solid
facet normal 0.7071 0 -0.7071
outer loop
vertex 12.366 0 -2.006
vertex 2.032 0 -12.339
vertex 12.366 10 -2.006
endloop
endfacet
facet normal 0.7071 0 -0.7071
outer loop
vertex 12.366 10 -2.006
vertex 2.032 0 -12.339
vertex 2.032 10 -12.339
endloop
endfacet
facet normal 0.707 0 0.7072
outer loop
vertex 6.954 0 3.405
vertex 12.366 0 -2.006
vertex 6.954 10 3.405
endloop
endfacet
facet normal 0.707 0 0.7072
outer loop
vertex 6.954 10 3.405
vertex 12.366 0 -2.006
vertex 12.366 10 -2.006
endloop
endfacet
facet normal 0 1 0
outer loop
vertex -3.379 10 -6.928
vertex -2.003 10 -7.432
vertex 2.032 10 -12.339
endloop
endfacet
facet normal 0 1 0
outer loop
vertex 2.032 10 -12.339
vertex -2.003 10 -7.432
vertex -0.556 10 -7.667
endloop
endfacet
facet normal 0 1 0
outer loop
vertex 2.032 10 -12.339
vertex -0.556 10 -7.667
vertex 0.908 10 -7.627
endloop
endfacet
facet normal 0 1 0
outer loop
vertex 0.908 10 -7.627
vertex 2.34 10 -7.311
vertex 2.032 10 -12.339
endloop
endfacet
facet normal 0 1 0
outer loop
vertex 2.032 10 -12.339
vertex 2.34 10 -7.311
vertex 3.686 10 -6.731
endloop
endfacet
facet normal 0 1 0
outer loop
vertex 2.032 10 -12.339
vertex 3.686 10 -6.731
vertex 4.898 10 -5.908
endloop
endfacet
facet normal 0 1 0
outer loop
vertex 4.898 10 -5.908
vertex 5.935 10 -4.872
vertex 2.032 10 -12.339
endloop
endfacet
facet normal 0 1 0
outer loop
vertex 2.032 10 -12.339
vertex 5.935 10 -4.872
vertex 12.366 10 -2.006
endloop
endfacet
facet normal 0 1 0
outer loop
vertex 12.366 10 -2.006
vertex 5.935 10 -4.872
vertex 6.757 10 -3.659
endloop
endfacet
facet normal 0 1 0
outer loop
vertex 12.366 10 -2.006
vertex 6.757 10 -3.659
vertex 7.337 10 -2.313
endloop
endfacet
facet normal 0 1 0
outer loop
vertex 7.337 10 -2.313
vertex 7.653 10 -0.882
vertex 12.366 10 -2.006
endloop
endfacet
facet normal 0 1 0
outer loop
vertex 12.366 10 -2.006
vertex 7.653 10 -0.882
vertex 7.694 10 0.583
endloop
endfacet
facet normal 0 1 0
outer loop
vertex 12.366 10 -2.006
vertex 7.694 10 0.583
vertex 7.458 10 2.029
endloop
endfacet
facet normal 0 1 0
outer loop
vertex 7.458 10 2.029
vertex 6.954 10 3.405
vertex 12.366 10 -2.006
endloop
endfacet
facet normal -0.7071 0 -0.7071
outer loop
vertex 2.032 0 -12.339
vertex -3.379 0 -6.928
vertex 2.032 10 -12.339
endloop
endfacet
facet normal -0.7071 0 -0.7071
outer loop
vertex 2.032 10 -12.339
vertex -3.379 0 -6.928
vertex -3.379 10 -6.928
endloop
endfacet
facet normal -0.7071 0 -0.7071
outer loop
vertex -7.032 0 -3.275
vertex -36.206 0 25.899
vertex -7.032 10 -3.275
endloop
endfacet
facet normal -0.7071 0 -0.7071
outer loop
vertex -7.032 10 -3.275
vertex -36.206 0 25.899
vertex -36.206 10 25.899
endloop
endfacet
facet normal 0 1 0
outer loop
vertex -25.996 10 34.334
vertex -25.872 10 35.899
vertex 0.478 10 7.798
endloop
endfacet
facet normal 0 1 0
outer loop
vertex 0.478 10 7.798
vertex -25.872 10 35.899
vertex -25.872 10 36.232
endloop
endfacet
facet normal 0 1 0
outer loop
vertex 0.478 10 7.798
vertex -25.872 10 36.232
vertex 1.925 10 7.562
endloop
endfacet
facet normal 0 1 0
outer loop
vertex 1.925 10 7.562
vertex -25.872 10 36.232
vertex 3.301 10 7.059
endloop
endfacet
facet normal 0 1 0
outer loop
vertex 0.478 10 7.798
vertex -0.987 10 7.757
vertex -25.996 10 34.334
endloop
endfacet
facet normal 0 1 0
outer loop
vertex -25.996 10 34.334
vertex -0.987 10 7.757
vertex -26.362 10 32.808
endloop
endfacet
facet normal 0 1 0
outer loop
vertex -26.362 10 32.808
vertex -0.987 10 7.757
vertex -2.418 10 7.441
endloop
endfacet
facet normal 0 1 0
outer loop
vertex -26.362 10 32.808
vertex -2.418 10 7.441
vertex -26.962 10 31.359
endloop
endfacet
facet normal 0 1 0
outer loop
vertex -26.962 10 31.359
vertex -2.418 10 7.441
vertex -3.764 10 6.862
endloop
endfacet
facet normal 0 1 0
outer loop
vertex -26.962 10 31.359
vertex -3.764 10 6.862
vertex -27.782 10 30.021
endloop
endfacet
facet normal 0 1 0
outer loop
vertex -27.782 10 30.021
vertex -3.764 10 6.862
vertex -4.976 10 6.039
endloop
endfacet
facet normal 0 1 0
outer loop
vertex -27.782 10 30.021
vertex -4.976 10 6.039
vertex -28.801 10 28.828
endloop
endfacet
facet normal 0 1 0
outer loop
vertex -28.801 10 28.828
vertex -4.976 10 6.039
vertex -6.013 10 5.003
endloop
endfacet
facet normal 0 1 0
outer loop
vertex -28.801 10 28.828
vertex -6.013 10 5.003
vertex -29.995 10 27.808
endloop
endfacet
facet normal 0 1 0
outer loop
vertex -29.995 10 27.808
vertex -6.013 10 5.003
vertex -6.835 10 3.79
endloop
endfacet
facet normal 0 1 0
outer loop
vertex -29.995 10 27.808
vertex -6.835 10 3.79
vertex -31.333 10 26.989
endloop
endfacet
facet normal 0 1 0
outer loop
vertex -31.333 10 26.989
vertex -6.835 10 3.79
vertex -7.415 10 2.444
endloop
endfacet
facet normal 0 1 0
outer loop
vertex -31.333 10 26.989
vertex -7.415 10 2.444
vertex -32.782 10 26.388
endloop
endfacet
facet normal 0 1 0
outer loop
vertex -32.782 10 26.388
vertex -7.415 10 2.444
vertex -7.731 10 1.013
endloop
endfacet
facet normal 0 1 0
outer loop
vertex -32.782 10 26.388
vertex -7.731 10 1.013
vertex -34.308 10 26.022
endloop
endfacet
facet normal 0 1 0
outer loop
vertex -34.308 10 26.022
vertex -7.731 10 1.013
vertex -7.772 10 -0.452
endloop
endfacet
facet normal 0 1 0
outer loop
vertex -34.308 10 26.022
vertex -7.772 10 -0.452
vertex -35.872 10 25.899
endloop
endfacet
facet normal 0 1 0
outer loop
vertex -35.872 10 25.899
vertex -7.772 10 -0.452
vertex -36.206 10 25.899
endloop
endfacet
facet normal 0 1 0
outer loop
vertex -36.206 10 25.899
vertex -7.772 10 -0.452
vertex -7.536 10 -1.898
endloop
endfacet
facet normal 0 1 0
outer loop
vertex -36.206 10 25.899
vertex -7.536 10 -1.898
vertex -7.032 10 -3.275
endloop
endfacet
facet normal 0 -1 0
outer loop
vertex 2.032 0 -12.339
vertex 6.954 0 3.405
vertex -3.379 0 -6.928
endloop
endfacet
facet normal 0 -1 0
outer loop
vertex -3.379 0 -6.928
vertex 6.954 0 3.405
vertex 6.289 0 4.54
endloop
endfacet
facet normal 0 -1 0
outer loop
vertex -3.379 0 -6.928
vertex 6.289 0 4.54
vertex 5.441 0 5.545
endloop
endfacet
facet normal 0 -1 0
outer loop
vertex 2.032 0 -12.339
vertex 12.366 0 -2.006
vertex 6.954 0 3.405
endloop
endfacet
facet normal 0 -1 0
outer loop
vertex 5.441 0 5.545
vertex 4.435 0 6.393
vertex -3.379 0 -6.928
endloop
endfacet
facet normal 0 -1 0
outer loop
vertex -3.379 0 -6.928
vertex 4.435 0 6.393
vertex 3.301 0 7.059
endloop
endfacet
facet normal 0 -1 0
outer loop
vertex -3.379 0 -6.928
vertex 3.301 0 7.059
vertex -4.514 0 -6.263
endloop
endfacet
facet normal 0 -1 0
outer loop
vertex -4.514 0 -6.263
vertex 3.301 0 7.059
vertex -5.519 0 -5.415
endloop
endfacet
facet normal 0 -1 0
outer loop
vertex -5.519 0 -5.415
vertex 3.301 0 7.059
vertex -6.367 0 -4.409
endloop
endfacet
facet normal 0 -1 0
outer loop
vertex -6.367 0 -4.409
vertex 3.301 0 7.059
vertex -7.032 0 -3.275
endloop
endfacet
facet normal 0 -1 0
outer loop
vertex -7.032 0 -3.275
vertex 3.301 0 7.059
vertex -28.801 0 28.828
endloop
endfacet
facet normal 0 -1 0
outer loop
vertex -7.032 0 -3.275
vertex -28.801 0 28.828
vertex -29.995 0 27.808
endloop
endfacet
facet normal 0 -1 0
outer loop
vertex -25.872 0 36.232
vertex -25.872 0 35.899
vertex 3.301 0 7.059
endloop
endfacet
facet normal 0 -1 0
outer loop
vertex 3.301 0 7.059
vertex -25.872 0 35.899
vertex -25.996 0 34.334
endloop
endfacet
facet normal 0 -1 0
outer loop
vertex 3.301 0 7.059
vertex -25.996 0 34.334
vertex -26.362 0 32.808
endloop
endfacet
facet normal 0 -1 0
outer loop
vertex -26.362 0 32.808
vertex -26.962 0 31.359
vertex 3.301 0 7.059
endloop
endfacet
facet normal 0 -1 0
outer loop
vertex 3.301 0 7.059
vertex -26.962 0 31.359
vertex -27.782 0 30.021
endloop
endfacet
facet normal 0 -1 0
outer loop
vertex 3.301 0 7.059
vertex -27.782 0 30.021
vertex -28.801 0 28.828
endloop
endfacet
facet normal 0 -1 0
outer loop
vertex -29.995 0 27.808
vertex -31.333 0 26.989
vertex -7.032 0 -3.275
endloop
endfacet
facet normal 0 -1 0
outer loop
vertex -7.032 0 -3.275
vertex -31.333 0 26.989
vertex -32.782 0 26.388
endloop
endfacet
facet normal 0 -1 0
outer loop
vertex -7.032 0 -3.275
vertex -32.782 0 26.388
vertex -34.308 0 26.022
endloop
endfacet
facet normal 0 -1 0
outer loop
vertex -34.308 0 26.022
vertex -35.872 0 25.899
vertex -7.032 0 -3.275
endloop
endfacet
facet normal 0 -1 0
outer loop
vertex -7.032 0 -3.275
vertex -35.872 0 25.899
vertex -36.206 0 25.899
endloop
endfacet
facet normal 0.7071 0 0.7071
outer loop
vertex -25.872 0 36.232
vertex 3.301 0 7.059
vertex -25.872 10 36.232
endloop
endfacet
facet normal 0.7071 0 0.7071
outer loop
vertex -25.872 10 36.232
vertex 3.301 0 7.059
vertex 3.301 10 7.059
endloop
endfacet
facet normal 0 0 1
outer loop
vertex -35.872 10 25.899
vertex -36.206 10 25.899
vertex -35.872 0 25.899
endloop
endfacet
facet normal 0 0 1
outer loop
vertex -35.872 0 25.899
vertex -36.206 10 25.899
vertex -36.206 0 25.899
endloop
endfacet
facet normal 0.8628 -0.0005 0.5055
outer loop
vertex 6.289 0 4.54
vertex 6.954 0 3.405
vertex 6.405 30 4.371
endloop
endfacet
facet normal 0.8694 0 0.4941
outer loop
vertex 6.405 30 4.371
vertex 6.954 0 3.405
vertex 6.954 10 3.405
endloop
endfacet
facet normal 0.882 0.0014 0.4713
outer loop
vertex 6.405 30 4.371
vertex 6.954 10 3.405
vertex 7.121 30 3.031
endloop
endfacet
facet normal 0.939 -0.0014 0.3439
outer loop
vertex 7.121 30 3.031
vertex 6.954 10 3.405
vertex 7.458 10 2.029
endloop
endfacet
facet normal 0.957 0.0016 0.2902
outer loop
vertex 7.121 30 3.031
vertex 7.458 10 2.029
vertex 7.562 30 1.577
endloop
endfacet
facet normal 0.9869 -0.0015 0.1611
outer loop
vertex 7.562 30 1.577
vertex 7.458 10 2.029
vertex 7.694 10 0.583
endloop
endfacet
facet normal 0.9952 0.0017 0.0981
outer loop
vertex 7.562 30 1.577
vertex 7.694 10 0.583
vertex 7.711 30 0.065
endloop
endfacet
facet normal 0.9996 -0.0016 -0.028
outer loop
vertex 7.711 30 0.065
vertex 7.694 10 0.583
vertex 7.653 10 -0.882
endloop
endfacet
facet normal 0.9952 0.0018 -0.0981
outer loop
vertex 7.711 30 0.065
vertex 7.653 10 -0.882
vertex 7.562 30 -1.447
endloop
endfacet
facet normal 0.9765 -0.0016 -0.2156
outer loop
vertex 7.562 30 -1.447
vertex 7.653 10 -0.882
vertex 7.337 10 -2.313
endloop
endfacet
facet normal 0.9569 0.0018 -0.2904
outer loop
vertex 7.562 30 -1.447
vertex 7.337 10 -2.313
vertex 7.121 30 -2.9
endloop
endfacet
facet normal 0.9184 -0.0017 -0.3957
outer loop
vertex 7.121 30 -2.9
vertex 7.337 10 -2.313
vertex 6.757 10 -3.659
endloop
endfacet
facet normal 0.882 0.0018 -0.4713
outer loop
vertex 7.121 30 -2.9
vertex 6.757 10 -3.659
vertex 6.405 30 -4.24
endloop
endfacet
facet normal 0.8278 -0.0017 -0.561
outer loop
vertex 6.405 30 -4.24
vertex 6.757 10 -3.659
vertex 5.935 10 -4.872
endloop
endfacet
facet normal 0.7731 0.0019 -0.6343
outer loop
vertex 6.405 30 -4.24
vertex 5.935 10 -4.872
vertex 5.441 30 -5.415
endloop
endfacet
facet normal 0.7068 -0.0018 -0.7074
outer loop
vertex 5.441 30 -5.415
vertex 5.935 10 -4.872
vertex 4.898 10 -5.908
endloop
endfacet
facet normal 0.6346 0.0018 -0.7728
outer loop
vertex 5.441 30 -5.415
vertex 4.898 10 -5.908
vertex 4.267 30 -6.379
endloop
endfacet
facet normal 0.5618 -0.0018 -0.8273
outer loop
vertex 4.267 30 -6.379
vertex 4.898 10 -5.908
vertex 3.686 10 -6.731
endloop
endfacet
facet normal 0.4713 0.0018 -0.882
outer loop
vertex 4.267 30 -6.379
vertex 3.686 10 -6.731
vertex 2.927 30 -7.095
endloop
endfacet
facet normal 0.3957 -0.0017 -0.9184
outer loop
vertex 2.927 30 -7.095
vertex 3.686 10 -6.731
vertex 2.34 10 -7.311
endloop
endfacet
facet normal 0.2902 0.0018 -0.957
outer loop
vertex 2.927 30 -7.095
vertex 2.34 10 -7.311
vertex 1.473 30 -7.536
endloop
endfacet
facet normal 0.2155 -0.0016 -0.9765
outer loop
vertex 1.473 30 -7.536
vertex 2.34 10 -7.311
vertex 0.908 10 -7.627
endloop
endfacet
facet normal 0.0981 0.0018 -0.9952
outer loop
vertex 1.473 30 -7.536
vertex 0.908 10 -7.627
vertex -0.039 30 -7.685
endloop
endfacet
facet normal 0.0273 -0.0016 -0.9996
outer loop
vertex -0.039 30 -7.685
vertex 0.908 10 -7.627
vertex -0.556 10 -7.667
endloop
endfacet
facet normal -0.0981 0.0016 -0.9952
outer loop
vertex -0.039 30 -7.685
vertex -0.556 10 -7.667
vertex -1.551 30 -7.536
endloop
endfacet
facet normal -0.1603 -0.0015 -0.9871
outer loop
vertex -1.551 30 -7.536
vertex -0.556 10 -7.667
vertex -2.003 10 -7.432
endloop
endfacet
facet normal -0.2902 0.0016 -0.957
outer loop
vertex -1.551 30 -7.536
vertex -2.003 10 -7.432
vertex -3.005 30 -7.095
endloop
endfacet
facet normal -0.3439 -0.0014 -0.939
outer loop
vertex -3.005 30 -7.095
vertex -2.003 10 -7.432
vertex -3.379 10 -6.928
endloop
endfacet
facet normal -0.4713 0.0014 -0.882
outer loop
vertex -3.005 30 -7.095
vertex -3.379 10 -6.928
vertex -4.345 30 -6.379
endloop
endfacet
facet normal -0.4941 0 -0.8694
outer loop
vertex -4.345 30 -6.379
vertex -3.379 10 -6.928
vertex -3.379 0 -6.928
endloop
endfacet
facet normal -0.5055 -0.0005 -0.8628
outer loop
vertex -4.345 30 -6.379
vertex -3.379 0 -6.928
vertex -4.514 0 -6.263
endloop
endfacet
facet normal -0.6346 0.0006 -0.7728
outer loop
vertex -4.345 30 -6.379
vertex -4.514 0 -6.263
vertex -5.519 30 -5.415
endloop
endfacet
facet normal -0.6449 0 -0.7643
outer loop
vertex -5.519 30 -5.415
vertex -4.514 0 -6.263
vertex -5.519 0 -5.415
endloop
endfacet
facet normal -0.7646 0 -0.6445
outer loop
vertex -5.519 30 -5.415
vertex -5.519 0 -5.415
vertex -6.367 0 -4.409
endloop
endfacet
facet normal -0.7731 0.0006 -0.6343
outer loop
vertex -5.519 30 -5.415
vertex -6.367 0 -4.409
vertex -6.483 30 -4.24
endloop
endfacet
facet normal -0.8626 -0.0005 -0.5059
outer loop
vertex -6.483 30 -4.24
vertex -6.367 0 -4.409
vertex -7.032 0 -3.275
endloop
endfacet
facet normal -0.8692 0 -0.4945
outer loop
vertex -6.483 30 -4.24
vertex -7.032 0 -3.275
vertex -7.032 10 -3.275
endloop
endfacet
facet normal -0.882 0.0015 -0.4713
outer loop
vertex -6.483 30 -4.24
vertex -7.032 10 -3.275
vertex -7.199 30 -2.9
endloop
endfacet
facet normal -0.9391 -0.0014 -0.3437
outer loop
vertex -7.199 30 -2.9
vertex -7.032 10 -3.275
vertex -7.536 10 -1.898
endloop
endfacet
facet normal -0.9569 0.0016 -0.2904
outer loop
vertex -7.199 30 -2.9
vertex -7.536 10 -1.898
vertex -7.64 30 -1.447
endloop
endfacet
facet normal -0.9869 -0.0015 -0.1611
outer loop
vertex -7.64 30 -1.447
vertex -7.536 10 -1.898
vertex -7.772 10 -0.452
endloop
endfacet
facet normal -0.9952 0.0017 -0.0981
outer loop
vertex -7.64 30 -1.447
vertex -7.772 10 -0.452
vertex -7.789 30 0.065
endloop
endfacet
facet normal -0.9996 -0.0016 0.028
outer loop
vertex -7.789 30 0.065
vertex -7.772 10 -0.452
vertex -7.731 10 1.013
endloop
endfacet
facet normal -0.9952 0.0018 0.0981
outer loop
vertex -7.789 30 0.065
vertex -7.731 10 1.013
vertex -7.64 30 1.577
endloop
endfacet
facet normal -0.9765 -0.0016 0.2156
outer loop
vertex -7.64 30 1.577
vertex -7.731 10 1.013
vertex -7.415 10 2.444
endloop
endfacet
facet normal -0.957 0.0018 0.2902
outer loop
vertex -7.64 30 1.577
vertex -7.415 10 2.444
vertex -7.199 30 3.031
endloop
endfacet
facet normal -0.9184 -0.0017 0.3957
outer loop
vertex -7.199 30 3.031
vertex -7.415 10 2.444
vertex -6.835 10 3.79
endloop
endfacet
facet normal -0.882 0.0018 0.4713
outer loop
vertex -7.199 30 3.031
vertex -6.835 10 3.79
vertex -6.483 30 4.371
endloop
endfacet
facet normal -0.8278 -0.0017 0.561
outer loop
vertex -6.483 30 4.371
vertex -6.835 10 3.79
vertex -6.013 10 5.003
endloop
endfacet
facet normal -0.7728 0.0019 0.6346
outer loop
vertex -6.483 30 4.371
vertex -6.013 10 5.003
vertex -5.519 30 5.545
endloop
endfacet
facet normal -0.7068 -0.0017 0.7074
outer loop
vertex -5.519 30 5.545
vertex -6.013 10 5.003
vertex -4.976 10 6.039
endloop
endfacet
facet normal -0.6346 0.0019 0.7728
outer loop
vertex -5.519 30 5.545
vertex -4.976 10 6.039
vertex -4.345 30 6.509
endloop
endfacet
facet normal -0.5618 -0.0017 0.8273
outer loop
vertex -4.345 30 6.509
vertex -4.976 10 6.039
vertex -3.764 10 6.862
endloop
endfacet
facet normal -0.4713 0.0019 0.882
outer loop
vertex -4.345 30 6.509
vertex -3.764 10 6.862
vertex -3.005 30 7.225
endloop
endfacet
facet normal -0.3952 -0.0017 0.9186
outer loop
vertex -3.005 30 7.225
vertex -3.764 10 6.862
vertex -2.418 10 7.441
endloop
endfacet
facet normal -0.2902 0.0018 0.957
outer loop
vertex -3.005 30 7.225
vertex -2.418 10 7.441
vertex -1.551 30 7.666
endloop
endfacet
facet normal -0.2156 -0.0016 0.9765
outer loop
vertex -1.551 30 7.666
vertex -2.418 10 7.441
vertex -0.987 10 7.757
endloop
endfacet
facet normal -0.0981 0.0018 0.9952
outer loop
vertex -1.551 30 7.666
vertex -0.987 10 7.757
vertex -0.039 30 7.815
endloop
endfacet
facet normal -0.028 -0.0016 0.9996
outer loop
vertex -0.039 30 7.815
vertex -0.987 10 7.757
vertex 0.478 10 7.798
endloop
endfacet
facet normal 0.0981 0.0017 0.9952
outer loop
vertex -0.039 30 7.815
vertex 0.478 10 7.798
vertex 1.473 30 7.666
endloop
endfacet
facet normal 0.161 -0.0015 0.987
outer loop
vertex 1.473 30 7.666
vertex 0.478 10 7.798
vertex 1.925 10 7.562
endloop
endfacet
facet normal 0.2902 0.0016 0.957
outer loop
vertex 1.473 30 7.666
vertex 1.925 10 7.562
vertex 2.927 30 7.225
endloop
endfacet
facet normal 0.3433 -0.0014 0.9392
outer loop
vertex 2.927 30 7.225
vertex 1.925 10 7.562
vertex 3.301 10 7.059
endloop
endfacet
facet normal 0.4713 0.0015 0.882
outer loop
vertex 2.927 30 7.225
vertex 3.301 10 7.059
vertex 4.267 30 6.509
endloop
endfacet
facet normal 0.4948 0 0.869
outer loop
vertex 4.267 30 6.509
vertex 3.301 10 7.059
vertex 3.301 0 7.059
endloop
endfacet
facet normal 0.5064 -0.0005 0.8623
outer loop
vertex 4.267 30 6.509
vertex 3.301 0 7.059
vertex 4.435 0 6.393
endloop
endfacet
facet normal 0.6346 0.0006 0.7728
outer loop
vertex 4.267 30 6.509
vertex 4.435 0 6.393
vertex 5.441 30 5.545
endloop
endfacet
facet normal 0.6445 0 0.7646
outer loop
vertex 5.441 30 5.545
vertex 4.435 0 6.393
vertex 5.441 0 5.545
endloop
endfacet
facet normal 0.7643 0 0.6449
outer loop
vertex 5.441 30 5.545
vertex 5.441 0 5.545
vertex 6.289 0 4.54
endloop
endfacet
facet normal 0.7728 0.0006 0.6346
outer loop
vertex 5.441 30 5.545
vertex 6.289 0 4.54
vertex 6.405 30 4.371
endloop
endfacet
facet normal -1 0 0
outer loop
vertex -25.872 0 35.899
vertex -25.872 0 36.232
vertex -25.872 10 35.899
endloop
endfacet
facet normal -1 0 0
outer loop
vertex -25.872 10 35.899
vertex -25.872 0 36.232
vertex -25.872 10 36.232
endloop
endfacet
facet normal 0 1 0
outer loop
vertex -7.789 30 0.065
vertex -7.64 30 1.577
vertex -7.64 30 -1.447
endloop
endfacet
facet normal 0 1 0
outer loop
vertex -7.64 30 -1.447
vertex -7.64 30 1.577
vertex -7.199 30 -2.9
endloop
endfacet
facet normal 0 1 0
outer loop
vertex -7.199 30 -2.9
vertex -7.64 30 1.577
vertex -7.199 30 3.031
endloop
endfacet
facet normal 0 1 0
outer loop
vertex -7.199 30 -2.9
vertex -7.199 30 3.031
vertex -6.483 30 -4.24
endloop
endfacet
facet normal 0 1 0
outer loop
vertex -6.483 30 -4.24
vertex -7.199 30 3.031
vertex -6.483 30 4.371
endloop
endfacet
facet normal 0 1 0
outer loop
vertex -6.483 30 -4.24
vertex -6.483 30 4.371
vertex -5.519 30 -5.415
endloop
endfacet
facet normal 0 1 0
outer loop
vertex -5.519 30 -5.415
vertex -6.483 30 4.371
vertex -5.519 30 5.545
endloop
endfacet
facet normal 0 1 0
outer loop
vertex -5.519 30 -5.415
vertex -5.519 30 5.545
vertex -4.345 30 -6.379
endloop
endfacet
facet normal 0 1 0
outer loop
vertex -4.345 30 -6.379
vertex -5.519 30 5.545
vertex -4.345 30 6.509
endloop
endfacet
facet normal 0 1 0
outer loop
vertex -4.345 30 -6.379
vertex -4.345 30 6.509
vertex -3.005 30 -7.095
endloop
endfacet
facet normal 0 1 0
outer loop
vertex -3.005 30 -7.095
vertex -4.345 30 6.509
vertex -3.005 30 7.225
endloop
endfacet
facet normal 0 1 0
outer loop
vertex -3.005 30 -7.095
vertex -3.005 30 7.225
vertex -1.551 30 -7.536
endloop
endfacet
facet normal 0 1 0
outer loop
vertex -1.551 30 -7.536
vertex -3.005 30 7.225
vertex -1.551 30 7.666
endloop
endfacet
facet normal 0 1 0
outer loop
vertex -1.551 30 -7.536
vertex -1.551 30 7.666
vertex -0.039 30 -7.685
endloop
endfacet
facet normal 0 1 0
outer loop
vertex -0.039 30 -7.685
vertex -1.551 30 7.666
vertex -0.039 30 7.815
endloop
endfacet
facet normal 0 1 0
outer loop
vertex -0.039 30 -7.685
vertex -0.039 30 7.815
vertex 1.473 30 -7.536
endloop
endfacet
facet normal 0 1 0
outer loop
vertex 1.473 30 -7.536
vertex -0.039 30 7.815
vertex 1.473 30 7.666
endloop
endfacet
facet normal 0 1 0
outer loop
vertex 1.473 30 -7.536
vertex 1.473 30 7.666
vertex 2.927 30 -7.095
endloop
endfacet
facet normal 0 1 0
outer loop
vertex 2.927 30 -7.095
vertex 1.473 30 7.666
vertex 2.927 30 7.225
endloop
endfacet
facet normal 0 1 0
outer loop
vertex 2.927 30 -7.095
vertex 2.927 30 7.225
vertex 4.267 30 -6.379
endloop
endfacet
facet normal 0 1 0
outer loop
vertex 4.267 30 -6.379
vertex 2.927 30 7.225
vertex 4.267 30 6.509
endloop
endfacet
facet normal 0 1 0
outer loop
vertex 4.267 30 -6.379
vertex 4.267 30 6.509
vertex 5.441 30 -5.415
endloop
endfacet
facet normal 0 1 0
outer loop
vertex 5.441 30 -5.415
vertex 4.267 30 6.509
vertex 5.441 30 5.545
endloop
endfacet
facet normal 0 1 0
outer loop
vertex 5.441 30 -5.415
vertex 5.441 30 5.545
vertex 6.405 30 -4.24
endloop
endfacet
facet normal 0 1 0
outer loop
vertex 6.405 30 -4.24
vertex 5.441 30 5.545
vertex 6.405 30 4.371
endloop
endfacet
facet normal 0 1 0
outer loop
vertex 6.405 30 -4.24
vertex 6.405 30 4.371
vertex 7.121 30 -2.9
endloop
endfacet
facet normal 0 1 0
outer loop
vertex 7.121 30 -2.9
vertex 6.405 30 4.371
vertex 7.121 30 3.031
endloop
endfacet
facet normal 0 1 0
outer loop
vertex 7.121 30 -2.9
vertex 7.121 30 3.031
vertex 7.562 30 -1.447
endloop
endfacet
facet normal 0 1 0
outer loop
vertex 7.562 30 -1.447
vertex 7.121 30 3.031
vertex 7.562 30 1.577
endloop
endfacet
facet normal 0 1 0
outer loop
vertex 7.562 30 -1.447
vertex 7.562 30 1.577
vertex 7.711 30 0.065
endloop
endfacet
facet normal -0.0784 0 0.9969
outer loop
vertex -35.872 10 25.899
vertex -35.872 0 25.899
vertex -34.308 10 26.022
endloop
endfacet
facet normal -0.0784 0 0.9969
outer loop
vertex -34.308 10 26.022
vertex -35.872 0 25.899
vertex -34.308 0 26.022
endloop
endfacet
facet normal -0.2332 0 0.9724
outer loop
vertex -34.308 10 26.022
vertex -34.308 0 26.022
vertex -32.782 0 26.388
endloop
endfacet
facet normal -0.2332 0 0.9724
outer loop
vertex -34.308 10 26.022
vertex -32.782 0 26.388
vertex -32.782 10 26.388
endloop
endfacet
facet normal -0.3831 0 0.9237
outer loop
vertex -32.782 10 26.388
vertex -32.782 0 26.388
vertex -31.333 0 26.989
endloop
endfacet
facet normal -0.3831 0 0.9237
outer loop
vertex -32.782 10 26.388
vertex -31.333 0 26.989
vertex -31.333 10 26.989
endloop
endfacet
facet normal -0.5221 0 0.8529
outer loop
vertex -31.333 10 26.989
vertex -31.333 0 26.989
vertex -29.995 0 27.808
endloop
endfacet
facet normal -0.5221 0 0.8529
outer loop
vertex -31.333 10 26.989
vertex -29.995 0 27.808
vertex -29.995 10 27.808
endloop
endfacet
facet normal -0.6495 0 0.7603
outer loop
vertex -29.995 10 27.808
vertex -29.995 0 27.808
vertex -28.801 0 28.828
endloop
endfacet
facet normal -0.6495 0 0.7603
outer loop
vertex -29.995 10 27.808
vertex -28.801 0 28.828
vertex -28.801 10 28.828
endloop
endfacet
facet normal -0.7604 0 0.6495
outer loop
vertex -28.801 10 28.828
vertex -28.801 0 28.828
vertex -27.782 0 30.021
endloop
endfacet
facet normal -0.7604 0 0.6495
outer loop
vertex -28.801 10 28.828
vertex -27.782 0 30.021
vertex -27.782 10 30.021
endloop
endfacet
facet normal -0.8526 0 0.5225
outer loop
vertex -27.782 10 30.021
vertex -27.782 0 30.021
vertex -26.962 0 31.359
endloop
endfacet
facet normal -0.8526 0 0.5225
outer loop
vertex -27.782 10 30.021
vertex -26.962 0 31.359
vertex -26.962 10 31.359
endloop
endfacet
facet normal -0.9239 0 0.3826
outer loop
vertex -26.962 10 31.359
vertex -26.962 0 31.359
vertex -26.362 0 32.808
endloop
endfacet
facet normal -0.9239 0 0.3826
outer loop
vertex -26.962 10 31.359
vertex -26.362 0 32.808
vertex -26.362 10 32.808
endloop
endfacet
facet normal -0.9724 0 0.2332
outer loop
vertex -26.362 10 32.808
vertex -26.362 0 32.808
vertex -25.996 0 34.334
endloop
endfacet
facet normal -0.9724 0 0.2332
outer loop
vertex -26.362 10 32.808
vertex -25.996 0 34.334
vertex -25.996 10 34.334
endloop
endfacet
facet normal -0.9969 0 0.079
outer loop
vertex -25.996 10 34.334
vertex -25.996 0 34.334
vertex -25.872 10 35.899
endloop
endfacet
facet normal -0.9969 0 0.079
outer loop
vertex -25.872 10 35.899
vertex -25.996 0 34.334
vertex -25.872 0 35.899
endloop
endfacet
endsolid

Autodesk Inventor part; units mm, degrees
ref_plane "YZ Plane" through (0, 0, 0) normal (1, 0, 0) x (0, 1, 0)
ref_plane "XZ Plane" through (0, 0, 0) normal (0, 1, 0) x (-1, 0, 0)
ref_plane "XY Plane" through (0, 0, 0) normal (0, 0, 1) x (1, 0, 0)
sketch "Sketch1" plane through (0, 0, 0) normal (0, 1, 0) x (-1, 0, 0)
  circle A0 centre (0.0391, 0.0653) radius 7.75
  line L0 (25.8724, 25.8987) -> (36.2057, 25.8987)
  line L1 (25.8724, 36.232) -> (25.8724, 25.8987)
  line L2 (36.2057, 25.8987) -> (-2.0324, -12.3395)
  line L3 (25.8724, 36.232) -> (-12.3657, -2.0061)
  line L4 (25.8724, 36.232) -> (79.9493, 36.232) construction
  line L5 (-12.3657, -2.0061) -> (-2.0324, -12.3395)
  point P0 (0, 0)
  point P1 (-53.1731, 12.2093)
  point P2 (3.379, -6.928)
  point P3 (-6.9543, 3.4053)
  point P4 (-3.3009, 7.0587)
  point P5 (7.0324, -3.2747)
  dimension "d0" = 15.5
  dimension "d1" = 135
extrude "Extrusion1" add sketch "Sketch1" along normal blind 10 contours A0 L3 L1 L0 L2 | A0 L2 L5 L3
extrude "Extrusion2" add sketch "Sketch1" along normal blind 30 contours A0 L2 L3 | L3 A0 | A0 L2
fillet "Fillet1" radius 10 1 edges at (-25.8724, 5, 25.8987)
properties part number "hjørner holder"
